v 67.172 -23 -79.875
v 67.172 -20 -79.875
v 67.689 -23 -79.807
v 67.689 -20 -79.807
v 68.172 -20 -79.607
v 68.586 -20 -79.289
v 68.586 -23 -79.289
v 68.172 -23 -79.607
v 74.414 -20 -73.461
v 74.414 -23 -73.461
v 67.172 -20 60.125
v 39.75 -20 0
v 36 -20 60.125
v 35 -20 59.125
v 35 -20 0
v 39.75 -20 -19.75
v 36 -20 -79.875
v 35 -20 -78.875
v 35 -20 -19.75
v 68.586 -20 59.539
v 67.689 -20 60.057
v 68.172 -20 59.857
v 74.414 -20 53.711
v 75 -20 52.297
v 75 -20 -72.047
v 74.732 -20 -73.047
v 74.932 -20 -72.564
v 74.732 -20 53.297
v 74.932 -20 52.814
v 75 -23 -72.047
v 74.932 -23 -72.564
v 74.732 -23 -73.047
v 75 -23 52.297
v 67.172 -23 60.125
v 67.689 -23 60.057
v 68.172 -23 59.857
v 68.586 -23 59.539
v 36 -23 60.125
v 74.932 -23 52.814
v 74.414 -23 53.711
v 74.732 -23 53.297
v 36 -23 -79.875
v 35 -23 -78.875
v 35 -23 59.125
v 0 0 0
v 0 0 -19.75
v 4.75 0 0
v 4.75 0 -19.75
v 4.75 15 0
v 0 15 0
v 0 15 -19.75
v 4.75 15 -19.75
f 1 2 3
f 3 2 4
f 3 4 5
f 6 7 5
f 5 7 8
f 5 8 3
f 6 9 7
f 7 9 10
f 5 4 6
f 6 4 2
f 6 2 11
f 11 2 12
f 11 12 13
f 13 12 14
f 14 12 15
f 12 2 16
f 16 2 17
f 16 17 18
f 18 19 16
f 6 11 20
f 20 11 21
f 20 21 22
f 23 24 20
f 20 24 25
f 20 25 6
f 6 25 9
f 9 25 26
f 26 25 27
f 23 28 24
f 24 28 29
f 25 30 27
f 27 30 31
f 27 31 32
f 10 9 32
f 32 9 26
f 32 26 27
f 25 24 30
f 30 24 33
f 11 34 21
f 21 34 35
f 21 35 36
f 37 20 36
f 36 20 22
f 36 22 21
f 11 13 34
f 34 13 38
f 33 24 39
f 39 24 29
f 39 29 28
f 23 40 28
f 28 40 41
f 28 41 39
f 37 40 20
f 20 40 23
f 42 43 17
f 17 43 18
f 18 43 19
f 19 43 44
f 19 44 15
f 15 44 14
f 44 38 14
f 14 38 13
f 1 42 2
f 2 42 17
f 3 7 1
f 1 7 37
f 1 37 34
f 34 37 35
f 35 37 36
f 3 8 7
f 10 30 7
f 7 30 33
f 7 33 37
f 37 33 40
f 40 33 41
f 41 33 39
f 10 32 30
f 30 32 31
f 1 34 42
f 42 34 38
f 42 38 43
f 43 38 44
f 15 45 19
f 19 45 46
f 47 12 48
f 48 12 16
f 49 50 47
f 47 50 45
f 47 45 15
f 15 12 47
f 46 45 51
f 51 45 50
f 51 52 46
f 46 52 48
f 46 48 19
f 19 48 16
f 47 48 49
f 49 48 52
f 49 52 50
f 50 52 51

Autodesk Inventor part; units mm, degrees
ref_plane "YZ Plane" through (0, 0, 0) normal (1, 0, 0) x (0, 1, 0)
ref_plane "XZ Plane" through (0, 0, 0) normal (0, 1, 0) x (-1, 0, 0)
ref_plane "XY Plane" through (0, 0, 0) normal (0, 0, 1) x (1, 0, 0)
sketch "Sketch1" plane through (0, 0, 0) normal (0, 1, 0) x (-1, 0, 0)
  line L0 (0, 0) -> (0, -19.75)
  line L1 (0, -19.75) -> (-4.75, -19.75)
  line L2 (-4.75, -19.75) -> (-4.75, 0)
  line L3 (-4.75, 0) -> (0, 0)
  dimension "d0" = 19.75
  dimension "d1" = 4.75
extrude "Extrusion1" add sketch "Sketch1" along normal blind 15
sketch "Sketch3" plane through (0, 0, 0) normal (0, 0, 1) x (1, 0, 0)
  line L0 (0, 0) -> (0, -60)
  line L1 (4.75, 0) -> (0, 0) projected
  line L2 (0, 0) -> (0, -55)
  line L3 (0, 0) -> (0, -50)
  line L4 (0, 0) -> (35, 0)
  line L5 (4.75, 0) -> (39.75, 0)
  line L6 (0, 0) -> (35, -20)
  line L7 (4.75, 0) -> (39.75, -20)
  line L8 (35, -20) -> (39.75, -20)
  dimension "d4" = 60
  dimension "d5" = 55
  dimension "d6" = 50
  dimension "d7" = 35
  dimension "d8" = 35
  dimension "d23" = 20
  dimension "d24" = 20
extrude "Extrusion2" add sketch "Sketch3" against normal blind 19.75
sketch "Sketch4" plane through (35, -20, 0) normal (0, -1, 0) x (1, 0, 0)
  line L0 (0, 0) -> (0, -19.75) projected
  line L1 (0, -9.875) -> (0, 60.125)
  line L2 (0, -9.875) -> (0, -79.875)
  line L3 (0, -79.875) -> (40, -79.875)
  line L4 (40, -79.875) -> (40, 60.125)
  line L5 (40, 60.125) -> (0, 60.125)
  point P0 (-35, 0)
  dimension "d11" = 70
  dimension "d12" = 70
  dimension "d13" = 40
extrude "Extrusion3" add sketch "Sketch4" along normal blind 3
chamfer "Chamfer1" distance 1 angle 45 2 edges at (35, -21.5, 60.125) (35, -21.5, -79.875)
chamfer "Chamfer2" distance 7 angle 45 2 edges at (75, -21.5, 60.125) (75, -21.5, -79.875)
fillet "Fillet1" radius 2 4 edges at (75, -21.5, 53.125) (68, -21.5, 60.125) (75, -21.5, -72.875) (68, -21.5, -79.875)
properties part number "DudukanLineSensor"
